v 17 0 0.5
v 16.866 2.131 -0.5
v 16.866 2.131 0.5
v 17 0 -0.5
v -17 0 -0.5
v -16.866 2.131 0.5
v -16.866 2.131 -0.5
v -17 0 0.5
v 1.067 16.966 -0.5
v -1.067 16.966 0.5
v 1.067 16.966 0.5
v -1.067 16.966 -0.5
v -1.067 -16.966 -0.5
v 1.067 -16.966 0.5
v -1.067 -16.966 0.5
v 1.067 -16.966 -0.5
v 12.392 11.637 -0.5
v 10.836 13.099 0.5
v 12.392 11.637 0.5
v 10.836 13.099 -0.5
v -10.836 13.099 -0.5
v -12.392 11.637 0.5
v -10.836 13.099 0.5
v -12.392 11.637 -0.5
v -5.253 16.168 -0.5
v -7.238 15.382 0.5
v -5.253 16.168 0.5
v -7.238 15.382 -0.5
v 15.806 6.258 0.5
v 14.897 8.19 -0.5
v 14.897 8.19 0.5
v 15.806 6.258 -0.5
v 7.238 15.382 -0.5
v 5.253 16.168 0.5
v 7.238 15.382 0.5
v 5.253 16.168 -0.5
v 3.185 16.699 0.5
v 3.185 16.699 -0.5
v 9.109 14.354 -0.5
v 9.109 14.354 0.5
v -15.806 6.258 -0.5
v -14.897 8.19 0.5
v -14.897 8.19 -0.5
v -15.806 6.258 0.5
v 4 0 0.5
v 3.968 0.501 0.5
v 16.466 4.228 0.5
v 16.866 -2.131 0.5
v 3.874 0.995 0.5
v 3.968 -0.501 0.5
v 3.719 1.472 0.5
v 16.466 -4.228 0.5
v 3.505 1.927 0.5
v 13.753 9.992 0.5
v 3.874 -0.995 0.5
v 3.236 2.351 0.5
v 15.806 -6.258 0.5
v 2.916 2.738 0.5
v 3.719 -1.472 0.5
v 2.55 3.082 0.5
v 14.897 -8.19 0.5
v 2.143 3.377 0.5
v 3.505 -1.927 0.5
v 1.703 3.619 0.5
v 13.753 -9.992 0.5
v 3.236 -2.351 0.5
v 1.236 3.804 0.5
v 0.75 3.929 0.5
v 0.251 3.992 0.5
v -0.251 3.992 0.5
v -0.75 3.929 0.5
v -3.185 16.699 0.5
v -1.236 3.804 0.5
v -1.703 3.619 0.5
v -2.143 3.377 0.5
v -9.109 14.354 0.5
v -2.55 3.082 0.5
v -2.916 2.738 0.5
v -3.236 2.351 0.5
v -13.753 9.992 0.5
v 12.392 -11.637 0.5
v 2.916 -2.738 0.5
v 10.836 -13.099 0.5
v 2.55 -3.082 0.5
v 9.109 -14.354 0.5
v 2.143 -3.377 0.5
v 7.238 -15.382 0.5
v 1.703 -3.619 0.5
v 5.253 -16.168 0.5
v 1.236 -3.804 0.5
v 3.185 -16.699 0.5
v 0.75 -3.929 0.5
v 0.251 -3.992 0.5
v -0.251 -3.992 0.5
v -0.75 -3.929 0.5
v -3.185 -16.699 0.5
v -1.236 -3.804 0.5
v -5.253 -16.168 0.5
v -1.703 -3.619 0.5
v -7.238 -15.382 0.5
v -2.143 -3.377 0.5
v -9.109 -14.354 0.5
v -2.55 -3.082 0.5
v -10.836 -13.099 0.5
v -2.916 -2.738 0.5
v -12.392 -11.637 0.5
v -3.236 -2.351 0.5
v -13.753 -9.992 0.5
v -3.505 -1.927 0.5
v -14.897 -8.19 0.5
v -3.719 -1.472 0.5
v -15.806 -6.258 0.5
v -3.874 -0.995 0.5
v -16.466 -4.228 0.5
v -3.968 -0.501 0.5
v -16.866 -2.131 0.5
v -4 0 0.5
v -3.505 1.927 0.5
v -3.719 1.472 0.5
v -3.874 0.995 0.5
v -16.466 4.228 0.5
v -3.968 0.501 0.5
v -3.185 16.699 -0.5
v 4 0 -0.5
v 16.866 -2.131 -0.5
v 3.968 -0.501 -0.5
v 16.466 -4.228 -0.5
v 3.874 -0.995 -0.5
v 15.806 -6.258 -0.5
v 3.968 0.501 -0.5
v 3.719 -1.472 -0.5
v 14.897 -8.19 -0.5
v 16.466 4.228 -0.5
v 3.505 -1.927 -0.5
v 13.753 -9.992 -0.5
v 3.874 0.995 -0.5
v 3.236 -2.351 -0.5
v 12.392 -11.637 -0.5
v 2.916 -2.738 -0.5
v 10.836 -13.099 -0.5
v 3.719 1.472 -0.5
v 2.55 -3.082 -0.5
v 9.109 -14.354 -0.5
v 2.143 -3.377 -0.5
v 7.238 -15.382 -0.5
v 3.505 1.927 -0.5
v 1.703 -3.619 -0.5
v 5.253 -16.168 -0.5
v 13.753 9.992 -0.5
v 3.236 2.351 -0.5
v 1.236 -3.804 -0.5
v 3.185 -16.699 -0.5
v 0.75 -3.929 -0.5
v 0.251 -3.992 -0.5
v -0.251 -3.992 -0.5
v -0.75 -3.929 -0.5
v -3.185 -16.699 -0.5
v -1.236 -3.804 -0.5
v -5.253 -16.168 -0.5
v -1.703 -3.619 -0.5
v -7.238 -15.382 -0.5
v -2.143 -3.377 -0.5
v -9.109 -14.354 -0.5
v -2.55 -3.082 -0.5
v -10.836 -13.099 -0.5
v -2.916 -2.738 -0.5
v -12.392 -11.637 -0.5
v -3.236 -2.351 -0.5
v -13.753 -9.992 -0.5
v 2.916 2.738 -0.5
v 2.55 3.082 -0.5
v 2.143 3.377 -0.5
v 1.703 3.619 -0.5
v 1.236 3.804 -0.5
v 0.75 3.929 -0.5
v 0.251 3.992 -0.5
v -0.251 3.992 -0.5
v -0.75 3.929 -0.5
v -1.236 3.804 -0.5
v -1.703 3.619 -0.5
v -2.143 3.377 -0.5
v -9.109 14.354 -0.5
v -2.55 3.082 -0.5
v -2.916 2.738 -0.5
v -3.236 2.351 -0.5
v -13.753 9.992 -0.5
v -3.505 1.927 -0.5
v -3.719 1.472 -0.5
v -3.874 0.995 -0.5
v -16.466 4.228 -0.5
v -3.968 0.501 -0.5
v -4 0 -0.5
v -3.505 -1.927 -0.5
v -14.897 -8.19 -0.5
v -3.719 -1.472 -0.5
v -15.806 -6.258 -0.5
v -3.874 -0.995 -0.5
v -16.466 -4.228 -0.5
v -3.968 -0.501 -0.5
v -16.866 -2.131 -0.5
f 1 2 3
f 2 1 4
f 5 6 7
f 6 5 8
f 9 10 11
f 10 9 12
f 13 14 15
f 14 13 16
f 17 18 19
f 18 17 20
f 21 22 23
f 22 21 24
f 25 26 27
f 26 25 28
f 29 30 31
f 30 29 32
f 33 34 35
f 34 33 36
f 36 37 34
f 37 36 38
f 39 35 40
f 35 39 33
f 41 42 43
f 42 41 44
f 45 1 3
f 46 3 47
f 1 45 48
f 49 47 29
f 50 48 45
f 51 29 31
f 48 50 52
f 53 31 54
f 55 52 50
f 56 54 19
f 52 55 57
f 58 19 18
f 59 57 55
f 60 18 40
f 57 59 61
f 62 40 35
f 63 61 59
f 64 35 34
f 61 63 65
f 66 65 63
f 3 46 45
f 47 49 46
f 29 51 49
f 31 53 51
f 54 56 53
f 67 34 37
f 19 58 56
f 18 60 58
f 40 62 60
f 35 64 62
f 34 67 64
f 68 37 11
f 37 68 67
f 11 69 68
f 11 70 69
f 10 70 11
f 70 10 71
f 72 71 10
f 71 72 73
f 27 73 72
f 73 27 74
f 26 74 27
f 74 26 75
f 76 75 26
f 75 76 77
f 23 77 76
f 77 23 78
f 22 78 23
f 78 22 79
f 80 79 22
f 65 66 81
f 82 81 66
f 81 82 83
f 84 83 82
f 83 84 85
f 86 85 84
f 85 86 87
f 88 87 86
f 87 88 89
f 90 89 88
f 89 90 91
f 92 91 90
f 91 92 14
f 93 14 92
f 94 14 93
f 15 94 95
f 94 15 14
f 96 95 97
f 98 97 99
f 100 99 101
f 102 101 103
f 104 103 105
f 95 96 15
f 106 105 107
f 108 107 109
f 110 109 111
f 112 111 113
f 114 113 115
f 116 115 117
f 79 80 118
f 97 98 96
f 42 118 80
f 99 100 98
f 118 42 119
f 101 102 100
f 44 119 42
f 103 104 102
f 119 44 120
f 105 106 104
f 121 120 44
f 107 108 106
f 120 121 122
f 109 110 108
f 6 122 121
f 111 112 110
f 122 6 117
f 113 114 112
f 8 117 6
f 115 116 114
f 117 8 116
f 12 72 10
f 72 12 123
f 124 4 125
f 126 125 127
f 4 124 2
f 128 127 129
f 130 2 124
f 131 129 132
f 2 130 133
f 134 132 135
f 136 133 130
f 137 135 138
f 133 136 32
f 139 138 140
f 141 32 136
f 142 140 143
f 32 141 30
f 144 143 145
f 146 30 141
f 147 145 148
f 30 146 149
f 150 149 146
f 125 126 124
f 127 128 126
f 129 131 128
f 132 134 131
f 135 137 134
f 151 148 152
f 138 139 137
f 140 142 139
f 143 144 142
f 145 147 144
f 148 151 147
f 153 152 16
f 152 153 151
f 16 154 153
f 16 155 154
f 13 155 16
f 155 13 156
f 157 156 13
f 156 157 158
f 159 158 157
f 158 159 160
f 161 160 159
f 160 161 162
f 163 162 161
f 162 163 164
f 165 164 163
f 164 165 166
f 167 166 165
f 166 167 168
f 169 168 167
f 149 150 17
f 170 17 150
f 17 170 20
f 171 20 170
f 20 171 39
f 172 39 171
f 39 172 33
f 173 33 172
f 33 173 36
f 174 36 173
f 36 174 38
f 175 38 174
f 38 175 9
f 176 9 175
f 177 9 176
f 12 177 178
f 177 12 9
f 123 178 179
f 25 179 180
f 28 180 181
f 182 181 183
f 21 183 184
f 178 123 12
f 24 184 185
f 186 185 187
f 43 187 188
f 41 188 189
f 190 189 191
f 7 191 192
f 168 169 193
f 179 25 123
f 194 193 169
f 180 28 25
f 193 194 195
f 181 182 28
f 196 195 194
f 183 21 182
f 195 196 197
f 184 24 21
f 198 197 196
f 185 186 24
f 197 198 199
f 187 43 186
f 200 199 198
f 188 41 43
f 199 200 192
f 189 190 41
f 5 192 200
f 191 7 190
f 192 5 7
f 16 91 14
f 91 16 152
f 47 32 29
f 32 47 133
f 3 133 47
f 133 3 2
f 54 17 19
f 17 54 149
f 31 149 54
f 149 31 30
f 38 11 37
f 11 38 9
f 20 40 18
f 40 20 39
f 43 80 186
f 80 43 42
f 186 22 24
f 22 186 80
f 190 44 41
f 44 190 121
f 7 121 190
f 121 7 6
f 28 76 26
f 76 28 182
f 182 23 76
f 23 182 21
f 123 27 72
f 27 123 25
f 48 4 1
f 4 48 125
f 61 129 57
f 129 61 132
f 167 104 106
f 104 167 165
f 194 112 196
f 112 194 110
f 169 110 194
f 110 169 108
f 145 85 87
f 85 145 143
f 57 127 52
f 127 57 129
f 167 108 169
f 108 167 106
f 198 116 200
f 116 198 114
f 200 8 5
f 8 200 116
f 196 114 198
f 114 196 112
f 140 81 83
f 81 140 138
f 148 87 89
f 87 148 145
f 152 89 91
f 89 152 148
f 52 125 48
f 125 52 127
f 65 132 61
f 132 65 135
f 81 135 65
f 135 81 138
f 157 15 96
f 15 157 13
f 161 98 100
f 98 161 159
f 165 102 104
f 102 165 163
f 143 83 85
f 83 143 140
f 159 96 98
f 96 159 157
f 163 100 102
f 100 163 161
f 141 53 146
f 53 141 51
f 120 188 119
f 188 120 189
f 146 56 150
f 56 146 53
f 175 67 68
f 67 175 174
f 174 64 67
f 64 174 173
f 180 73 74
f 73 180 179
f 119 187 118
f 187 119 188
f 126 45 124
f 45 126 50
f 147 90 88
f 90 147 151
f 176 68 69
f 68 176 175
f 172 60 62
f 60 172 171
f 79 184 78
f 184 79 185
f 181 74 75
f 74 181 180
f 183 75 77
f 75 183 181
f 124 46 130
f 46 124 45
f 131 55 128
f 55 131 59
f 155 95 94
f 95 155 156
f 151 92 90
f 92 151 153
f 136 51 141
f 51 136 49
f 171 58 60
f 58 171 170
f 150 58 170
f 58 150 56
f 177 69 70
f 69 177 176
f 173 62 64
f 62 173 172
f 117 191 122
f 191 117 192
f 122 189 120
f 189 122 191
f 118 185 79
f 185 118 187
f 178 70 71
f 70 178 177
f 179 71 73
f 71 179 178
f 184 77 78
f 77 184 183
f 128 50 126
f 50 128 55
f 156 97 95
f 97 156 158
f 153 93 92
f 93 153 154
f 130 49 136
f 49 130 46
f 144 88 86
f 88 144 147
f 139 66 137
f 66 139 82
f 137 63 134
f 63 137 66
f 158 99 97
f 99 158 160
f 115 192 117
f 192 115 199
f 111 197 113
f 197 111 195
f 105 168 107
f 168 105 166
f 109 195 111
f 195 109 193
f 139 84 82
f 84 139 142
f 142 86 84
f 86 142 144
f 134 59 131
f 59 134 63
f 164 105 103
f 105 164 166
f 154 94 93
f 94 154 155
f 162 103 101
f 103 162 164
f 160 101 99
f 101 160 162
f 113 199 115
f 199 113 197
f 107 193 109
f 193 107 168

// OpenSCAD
$fn = 50;


difference() {
	union() {
		translate(v = [0, 0, -0.5000000000]) {
			cylinder(h = 1, r = 17.0000000000);
		}
	}
	union() {
		translate(v = [0, 0, -100.0000000000]) {
			cylinder(h = 200, r = 4);
		}
	}
}
